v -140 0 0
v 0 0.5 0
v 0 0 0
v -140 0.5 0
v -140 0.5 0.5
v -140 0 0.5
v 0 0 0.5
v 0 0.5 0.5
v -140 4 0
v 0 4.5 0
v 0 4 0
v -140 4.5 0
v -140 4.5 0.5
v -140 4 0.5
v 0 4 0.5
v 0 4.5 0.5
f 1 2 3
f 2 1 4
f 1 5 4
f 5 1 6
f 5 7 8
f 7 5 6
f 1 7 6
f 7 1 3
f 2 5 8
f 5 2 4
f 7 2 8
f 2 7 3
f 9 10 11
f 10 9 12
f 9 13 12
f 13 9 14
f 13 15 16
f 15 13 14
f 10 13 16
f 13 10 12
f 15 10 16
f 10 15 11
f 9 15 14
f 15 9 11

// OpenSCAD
CakeHeight = 170;

BoundaryWidth = 0.5;
BoundaryHeight = 0.5;

Arc1ToEdge = 15;

rotate([0, -90, 0])
cube(size=[BoundaryHeight, BoundaryWidth, CakeHeight-Arc1ToEdge*2], center=false);

translate([0, 4, 0])
rotate([0, -90, 0])
cube(size=[BoundaryHeight, BoundaryWidth, CakeHeight-Arc1ToEdge*2], center=false);
